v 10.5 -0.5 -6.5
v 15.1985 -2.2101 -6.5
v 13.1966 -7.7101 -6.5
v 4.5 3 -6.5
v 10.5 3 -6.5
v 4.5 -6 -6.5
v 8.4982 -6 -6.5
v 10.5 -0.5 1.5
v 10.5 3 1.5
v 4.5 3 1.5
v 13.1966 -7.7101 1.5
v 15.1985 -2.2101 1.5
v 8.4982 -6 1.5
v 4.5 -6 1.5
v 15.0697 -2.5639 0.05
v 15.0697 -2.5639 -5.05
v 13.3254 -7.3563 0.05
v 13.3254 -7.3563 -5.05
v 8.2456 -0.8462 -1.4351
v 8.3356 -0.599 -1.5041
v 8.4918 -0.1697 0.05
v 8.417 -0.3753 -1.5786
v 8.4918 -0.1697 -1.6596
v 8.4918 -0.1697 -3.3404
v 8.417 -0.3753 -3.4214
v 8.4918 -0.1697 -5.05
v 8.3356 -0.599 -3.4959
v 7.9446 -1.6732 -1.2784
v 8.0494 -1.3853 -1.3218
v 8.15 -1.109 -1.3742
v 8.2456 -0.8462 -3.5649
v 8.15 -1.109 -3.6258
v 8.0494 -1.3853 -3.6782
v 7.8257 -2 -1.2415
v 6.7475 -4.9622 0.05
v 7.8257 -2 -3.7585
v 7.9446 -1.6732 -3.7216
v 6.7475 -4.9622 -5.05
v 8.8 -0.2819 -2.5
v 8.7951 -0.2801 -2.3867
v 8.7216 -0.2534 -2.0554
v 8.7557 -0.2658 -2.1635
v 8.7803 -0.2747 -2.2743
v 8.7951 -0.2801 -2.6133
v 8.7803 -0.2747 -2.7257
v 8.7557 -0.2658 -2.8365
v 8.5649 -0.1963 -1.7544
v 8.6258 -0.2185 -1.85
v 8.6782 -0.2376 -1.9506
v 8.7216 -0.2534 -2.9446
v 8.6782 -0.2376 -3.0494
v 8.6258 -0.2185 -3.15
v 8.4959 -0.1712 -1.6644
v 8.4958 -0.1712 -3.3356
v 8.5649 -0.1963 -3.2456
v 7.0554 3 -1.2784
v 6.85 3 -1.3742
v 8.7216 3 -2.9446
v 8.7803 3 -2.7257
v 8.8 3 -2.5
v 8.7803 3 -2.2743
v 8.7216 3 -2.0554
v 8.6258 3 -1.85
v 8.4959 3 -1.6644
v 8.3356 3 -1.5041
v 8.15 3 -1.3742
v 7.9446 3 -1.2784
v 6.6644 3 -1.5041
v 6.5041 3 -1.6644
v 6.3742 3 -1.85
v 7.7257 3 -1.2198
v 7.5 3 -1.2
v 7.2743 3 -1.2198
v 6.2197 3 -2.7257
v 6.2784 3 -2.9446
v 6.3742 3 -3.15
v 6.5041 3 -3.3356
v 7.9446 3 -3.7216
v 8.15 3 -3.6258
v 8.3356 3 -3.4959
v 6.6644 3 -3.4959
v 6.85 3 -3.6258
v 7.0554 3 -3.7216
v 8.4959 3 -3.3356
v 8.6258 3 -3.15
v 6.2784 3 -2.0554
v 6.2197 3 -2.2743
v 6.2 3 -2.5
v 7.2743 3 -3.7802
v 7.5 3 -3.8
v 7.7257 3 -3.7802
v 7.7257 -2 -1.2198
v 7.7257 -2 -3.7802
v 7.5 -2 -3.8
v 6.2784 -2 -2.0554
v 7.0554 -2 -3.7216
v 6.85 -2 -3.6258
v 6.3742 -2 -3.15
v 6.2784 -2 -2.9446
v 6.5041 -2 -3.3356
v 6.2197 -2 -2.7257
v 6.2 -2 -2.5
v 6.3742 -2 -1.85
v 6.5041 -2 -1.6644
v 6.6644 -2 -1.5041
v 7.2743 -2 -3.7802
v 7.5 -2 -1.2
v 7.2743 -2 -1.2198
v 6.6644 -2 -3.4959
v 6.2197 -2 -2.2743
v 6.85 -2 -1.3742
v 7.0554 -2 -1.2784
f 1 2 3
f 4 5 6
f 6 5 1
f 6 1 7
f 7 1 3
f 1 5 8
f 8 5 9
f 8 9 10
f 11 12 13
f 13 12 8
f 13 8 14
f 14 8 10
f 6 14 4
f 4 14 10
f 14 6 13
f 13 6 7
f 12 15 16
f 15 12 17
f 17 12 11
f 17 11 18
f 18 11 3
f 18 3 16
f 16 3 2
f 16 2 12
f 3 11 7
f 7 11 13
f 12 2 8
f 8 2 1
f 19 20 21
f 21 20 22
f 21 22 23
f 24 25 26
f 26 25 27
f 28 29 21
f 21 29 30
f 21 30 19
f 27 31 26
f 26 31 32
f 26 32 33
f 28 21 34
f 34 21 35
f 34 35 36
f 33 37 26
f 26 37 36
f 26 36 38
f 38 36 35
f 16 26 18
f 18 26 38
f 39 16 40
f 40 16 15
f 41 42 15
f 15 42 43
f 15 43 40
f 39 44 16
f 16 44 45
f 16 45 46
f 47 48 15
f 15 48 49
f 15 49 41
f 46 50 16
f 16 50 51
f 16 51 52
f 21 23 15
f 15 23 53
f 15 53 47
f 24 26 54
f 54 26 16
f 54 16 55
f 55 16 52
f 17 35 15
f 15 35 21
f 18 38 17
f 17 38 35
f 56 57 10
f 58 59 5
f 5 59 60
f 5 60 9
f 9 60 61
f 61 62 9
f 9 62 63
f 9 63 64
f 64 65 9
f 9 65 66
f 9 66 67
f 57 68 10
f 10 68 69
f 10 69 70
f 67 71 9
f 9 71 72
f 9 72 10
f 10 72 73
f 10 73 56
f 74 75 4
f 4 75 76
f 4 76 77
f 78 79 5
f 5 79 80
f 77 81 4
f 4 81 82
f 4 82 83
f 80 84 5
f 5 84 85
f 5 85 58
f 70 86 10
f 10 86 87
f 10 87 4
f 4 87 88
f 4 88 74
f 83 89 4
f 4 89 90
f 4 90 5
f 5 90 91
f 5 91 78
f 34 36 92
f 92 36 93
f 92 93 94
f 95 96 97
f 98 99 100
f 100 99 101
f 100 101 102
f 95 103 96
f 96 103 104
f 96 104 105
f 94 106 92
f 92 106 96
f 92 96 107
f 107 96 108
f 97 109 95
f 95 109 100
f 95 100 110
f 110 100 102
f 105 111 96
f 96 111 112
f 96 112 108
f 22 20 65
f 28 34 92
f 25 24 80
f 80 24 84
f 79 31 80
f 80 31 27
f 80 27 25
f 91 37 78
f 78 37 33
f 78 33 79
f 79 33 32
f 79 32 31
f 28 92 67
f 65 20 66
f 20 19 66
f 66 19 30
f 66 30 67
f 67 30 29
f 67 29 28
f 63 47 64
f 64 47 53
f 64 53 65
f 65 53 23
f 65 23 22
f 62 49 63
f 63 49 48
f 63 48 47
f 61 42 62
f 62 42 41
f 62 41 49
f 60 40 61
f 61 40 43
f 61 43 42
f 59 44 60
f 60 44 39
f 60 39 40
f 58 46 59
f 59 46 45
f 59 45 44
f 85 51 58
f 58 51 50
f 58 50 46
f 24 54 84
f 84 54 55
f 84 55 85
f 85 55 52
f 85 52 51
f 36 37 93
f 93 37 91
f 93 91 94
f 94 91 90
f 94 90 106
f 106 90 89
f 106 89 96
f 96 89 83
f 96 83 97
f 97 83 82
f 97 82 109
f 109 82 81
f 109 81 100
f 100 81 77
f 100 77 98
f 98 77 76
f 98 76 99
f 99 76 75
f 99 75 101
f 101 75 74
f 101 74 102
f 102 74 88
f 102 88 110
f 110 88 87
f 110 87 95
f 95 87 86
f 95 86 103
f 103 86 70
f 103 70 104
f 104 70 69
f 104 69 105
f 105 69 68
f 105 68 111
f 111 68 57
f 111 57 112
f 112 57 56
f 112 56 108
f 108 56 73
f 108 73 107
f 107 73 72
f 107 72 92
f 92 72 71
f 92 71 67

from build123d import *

# Parameters (mm, degrees)
SKETCH_1_W          = 15
SKETCH_1_H          = 5
SKETCH_1_R          = 0.85
EXTRUDE_1_DEPTH     = 2
SKETCH_2_W          = 6
SKETCH_2_H          = 8
EXTRUDE_3_DEPTH     = 6
CUT_EXTRUDE_2_DEPTH = 8
SKETCH_7_W          = 5.1
SKETCH_7_H          = 5.1
CUT_EXTRUDE_3_DEPTH = 2
SKETCH_10_W         = 8
SKETCH_10_H         = 5.852977749
SKETCH_10_W_2       = 5.1
SKETCH_10_H_2       = 5.1
EXTRUDE_4_DEPTH     = 5
SKETCH_11_W         = 6
SKETCH_11_H         = 8
EXTRUDE_5_DEPTH     = 3
CUT_EXTRUDE_4_DEPTH = 5
SKETCH_13_W         = 4.5
SKETCH_13_H         = 5
CUT_EXTRUDE_5_DEPTH = 2


with BuildPart() as part:
    # 草图1 → 凸台-拉伸1 (new body)
    with BuildSketch(Plane(origin=(0, 0, 0), x_dir=(1, 0, 0), z_dir=(0, 1, 0))):
        with Locations((7.5, 2.5)):
            Rectangle(SKETCH_1_W, SKETCH_1_H)
        with Locations(Location((3.25, 2.5, 0), (0, 0, 270))):
            Circle(SKETCH_1_R, mode=Mode.SUBTRACT)
        with Locations(Location((11.75, 2.5, 0), (0, 0, 90))):
            Circle(SKETCH_1_R, mode=Mode.SUBTRACT)
    extrude(amount=EXTRUDE_1_DEPTH)

    # 草图2 → 凸台-拉伸3 (add)
    with BuildSketch(Plane.XZ):
        with Locations((7.5, -2.5)):
            Rectangle(SKETCH_2_W, SKETCH_2_H)
    extrude(amount=EXTRUDE_3_DEPTH)

    # 草图6 → 切除-拉伸2 (cut)
    with BuildSketch(Plane(origin=(0, 0, -6.5), x_dir=(-1, 0, 0), z_dir=(0, 0, -1))):
        Polygon((-10.5, -0.5), (-10.5, -6), (-8.498163712, -6), align=None)
    extrude(amount=-CUT_EXTRUDE_2_DEPTH, mode=Mode.SUBTRACT)

    # 草图7 → 切除-拉伸3 (cut)
    with BuildSketch(Plane(origin=(9.432430229, -3.43312384, 0), x_dir=(0, 0, -1), z_dir=(0.9396926207859104, -0.3420201433256631, 0))):
        with Locations((2.5, 0.19487632)):
            Rectangle(SKETCH_7_W, SKETCH_7_H)
    extrude(amount=-CUT_EXTRUDE_3_DEPTH, mode=Mode.SUBTRACT)

    # 草图10 → 凸台-拉伸4 (add)
    with BuildSketch(Plane(origin=(9.432430229, -3.43312384, 0), x_dir=(0, 0, -1), z_dir=(0.9396926207859104, -0.3420201433256631, 0))):
        with Locations((2.5, 0.19487632)):
            Rectangle(SKETCH_10_W, SKETCH_10_H)
        with Locations((2.5, 0.19487632)):
            Rectangle(SKETCH_10_W_2, SKETCH_10_H_2, mode=Mode.SUBTRACT)
    extrude(amount=EXTRUDE_4_DEPTH)

    # 草图11 → 凸台-拉伸5 (add)
    with BuildSketch(Plane(origin=(0, 0, 0), x_dir=(1, 0, 0), z_dir=(0, 1, 0))):
        with Locations((7.5, 2.5)):
            Rectangle(SKETCH_11_W, SKETCH_11_H)
    extrude(amount=EXTRUDE_5_DEPTH)

    # 草图12 → 切除-拉伸4 (cut)
    with BuildSketch(Plane(origin=(0, 3, 0), x_dir=(1, 0, 0), z_dir=(0, 1, 0))):
        with BuildLine():
            ThreePointArc((8.8, 2.5), (7.5, 3.8), (6.2, 2.5))
            Line((6.2, 2.5), (8.8, 2.5))
        make_face()
        with BuildLine():
            Line((8.8, 2.5), (6.2, 2.5))
            ThreePointArc((6.2, 2.5), (7.5, 1.2), (8.8, 2.5))
        make_face()
    extrude(amount=-CUT_EXTRUDE_4_DEPTH, mode=Mode.SUBTRACT)

    # 草图13 → 切除-拉伸5 (cut)
    with BuildSketch(Plane(origin=(0, 2, 0), x_dir=(1, 0, 0), z_dir=(0, 1, 0))):
        with Locations((2.25, 2.5)):
            Rectangle(SKETCH_13_W, SKETCH_13_H)
        with Locations((12.75, 2.5)):
            Rectangle(SKETCH_13_W, SKETCH_13_H)
    extrude(amount=-CUT_EXTRUDE_5_DEPTH, mode=Mode.SUBTRACT)


solid = part.part
